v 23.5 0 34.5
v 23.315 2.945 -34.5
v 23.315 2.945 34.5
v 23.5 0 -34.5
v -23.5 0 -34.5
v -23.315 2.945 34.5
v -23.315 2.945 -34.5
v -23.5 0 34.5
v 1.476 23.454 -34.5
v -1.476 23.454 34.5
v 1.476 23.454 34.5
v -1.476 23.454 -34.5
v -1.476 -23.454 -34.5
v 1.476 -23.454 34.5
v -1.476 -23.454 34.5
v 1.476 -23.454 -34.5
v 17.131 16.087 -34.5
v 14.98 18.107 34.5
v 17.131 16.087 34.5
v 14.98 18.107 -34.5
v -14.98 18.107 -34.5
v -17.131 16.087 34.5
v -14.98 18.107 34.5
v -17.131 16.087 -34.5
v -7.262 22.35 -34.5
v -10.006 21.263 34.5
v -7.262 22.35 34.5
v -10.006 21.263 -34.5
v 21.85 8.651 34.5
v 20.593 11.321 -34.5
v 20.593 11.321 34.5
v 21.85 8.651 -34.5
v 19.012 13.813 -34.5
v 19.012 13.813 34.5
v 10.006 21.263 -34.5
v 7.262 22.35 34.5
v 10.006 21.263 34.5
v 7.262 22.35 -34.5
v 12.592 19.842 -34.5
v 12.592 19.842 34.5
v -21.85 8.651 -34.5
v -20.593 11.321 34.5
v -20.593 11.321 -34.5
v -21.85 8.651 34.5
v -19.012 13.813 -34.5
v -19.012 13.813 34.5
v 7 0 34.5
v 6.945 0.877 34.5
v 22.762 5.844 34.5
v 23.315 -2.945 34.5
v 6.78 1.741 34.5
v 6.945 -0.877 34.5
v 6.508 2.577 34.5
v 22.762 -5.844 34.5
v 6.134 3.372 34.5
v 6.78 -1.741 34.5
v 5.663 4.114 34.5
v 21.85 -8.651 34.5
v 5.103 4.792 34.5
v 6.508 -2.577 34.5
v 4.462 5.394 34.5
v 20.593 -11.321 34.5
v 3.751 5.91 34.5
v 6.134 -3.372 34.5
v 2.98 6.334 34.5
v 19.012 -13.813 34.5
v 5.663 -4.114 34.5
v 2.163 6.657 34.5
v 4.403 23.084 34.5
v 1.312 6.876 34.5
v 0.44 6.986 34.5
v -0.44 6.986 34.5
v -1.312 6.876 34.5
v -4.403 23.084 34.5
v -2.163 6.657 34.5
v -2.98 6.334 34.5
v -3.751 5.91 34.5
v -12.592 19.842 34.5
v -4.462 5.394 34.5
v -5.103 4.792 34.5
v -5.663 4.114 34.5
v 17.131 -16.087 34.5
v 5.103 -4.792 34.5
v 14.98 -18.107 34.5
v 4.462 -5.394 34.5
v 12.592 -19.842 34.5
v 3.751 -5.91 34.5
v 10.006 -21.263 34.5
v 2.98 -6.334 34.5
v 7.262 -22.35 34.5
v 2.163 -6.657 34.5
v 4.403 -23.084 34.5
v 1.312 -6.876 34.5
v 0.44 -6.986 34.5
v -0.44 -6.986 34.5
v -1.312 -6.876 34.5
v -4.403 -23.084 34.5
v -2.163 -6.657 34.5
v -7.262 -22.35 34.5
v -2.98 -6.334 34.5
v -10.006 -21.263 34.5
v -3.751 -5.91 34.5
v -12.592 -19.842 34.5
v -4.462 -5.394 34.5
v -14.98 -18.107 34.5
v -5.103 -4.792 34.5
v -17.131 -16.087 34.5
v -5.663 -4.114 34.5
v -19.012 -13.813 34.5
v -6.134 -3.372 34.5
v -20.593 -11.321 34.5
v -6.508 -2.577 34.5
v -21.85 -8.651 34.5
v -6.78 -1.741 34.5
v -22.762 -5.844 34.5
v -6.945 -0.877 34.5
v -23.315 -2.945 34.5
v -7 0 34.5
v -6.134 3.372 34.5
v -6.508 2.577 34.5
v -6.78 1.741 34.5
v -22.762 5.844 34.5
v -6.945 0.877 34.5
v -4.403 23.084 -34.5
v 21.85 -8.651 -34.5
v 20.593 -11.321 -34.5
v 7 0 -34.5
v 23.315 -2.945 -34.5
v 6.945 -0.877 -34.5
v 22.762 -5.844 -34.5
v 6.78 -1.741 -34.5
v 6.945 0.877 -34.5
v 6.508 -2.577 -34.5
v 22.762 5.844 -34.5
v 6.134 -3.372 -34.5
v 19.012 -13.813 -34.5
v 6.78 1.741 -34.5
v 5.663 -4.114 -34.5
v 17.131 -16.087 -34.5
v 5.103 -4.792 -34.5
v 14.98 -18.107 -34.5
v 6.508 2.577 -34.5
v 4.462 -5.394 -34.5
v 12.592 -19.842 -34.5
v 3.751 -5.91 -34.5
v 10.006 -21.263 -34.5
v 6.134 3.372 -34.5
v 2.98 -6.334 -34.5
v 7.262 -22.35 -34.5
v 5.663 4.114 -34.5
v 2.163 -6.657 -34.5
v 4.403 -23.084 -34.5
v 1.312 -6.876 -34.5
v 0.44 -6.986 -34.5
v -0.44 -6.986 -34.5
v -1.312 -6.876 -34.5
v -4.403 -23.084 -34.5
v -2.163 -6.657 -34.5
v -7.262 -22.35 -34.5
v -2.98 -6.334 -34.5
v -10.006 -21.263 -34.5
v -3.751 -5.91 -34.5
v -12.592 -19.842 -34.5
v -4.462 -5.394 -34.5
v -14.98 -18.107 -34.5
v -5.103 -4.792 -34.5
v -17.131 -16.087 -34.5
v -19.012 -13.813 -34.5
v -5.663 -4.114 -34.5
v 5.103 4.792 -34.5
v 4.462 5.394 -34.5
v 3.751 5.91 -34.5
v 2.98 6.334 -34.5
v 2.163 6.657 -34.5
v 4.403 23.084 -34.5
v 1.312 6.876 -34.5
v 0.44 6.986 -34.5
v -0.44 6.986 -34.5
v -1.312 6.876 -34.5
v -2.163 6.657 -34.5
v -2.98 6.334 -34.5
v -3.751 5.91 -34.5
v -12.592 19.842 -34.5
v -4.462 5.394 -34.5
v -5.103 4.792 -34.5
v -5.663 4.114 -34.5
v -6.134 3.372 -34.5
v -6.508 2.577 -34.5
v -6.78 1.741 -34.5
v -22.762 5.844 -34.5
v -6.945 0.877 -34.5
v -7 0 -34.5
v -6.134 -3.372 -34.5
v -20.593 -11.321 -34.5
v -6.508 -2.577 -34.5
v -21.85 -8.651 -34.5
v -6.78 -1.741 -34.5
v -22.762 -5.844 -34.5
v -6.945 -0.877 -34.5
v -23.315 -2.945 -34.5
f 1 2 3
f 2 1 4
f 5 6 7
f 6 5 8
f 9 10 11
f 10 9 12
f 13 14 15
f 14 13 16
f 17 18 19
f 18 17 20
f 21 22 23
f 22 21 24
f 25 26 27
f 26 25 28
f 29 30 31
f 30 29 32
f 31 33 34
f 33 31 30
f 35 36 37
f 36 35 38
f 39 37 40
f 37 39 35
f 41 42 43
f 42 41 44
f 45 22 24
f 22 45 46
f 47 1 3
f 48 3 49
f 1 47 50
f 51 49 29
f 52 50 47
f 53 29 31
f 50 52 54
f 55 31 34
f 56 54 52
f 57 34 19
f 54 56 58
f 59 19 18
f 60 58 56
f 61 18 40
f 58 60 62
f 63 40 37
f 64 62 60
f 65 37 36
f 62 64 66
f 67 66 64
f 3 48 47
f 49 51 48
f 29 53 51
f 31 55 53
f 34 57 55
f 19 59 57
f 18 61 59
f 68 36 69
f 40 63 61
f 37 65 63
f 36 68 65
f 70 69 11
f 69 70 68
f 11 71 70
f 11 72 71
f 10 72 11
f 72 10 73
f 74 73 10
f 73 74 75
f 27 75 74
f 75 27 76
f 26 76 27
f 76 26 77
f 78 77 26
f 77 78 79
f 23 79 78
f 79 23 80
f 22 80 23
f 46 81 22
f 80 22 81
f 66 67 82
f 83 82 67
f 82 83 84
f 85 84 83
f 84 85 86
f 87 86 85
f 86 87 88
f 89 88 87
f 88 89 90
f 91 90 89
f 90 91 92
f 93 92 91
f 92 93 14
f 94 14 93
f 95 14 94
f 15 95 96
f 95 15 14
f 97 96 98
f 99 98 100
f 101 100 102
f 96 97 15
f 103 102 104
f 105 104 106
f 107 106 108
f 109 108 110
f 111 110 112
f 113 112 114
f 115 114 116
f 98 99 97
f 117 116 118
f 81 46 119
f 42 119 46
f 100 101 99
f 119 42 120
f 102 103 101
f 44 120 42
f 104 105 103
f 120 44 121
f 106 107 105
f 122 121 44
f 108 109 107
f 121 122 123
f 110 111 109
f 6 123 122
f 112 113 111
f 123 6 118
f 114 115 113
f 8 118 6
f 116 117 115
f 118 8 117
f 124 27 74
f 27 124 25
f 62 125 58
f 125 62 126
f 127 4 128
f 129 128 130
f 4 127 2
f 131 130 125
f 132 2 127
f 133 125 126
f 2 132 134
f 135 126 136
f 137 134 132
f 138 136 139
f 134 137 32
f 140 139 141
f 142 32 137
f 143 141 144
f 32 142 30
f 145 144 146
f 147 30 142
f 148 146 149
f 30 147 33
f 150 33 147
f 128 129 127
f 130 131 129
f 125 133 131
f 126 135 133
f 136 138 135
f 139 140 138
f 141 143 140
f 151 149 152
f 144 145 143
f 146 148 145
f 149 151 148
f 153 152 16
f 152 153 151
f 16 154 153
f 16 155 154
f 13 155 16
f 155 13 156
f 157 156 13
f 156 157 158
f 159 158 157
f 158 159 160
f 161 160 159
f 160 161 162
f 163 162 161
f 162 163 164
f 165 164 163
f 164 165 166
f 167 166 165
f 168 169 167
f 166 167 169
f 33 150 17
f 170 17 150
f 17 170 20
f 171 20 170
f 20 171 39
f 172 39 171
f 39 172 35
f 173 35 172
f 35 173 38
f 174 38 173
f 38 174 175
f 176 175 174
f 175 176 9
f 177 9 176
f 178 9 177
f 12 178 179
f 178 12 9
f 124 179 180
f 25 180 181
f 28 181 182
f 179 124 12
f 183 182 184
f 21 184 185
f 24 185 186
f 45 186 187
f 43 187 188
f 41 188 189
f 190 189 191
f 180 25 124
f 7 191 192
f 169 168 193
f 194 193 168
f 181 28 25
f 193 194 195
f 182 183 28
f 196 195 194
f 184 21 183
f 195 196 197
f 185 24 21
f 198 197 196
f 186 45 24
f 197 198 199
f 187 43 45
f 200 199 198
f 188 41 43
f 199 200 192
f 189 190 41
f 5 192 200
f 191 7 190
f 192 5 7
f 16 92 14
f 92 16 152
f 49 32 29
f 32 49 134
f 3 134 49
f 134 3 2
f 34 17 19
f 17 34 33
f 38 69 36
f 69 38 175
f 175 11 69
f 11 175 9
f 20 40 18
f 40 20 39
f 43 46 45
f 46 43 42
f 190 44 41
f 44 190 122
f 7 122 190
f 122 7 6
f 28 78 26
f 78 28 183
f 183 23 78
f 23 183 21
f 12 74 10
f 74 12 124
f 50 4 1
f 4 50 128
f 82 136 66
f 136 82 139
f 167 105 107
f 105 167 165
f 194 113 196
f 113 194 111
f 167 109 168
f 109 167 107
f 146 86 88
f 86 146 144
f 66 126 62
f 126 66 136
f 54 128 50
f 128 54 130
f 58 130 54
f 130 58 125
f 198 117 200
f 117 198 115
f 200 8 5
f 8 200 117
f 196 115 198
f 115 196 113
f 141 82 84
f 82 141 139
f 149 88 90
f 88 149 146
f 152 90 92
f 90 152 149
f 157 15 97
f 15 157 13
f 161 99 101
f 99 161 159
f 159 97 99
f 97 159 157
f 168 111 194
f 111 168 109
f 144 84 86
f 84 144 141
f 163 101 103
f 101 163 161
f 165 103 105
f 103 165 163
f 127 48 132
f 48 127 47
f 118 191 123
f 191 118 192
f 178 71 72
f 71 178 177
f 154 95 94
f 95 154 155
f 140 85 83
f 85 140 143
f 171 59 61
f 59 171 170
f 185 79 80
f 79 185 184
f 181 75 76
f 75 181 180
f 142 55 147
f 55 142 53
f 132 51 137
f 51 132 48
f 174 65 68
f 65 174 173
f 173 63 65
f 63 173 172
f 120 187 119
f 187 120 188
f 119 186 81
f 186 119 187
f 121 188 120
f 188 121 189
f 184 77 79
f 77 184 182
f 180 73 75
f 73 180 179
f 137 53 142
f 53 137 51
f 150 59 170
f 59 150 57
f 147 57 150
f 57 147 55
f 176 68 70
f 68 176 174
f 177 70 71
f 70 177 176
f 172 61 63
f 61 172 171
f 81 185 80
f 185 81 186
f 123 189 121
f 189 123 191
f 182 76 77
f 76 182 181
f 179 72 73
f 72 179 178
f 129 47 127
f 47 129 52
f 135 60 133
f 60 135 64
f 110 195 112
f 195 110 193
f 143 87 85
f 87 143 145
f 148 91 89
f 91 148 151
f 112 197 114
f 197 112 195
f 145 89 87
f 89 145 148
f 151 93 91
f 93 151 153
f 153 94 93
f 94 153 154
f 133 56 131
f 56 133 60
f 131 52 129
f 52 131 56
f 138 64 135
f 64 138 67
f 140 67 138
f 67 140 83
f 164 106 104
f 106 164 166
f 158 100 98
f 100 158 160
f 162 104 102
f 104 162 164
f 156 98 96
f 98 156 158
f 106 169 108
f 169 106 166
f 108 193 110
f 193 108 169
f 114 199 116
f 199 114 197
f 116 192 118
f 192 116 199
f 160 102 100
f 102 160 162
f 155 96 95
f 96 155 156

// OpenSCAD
$fn = 50;


difference() {
	union() {
		translate(v = [0, 0, -34.5000000000]) {
			cylinder(h = 69, r = 23.5000000000);
		}
	}
	union() {
		translate(v = [0, 0, -100.0000000000]) {
			cylinder(h = 200, r = 7);
		}
	}
}
